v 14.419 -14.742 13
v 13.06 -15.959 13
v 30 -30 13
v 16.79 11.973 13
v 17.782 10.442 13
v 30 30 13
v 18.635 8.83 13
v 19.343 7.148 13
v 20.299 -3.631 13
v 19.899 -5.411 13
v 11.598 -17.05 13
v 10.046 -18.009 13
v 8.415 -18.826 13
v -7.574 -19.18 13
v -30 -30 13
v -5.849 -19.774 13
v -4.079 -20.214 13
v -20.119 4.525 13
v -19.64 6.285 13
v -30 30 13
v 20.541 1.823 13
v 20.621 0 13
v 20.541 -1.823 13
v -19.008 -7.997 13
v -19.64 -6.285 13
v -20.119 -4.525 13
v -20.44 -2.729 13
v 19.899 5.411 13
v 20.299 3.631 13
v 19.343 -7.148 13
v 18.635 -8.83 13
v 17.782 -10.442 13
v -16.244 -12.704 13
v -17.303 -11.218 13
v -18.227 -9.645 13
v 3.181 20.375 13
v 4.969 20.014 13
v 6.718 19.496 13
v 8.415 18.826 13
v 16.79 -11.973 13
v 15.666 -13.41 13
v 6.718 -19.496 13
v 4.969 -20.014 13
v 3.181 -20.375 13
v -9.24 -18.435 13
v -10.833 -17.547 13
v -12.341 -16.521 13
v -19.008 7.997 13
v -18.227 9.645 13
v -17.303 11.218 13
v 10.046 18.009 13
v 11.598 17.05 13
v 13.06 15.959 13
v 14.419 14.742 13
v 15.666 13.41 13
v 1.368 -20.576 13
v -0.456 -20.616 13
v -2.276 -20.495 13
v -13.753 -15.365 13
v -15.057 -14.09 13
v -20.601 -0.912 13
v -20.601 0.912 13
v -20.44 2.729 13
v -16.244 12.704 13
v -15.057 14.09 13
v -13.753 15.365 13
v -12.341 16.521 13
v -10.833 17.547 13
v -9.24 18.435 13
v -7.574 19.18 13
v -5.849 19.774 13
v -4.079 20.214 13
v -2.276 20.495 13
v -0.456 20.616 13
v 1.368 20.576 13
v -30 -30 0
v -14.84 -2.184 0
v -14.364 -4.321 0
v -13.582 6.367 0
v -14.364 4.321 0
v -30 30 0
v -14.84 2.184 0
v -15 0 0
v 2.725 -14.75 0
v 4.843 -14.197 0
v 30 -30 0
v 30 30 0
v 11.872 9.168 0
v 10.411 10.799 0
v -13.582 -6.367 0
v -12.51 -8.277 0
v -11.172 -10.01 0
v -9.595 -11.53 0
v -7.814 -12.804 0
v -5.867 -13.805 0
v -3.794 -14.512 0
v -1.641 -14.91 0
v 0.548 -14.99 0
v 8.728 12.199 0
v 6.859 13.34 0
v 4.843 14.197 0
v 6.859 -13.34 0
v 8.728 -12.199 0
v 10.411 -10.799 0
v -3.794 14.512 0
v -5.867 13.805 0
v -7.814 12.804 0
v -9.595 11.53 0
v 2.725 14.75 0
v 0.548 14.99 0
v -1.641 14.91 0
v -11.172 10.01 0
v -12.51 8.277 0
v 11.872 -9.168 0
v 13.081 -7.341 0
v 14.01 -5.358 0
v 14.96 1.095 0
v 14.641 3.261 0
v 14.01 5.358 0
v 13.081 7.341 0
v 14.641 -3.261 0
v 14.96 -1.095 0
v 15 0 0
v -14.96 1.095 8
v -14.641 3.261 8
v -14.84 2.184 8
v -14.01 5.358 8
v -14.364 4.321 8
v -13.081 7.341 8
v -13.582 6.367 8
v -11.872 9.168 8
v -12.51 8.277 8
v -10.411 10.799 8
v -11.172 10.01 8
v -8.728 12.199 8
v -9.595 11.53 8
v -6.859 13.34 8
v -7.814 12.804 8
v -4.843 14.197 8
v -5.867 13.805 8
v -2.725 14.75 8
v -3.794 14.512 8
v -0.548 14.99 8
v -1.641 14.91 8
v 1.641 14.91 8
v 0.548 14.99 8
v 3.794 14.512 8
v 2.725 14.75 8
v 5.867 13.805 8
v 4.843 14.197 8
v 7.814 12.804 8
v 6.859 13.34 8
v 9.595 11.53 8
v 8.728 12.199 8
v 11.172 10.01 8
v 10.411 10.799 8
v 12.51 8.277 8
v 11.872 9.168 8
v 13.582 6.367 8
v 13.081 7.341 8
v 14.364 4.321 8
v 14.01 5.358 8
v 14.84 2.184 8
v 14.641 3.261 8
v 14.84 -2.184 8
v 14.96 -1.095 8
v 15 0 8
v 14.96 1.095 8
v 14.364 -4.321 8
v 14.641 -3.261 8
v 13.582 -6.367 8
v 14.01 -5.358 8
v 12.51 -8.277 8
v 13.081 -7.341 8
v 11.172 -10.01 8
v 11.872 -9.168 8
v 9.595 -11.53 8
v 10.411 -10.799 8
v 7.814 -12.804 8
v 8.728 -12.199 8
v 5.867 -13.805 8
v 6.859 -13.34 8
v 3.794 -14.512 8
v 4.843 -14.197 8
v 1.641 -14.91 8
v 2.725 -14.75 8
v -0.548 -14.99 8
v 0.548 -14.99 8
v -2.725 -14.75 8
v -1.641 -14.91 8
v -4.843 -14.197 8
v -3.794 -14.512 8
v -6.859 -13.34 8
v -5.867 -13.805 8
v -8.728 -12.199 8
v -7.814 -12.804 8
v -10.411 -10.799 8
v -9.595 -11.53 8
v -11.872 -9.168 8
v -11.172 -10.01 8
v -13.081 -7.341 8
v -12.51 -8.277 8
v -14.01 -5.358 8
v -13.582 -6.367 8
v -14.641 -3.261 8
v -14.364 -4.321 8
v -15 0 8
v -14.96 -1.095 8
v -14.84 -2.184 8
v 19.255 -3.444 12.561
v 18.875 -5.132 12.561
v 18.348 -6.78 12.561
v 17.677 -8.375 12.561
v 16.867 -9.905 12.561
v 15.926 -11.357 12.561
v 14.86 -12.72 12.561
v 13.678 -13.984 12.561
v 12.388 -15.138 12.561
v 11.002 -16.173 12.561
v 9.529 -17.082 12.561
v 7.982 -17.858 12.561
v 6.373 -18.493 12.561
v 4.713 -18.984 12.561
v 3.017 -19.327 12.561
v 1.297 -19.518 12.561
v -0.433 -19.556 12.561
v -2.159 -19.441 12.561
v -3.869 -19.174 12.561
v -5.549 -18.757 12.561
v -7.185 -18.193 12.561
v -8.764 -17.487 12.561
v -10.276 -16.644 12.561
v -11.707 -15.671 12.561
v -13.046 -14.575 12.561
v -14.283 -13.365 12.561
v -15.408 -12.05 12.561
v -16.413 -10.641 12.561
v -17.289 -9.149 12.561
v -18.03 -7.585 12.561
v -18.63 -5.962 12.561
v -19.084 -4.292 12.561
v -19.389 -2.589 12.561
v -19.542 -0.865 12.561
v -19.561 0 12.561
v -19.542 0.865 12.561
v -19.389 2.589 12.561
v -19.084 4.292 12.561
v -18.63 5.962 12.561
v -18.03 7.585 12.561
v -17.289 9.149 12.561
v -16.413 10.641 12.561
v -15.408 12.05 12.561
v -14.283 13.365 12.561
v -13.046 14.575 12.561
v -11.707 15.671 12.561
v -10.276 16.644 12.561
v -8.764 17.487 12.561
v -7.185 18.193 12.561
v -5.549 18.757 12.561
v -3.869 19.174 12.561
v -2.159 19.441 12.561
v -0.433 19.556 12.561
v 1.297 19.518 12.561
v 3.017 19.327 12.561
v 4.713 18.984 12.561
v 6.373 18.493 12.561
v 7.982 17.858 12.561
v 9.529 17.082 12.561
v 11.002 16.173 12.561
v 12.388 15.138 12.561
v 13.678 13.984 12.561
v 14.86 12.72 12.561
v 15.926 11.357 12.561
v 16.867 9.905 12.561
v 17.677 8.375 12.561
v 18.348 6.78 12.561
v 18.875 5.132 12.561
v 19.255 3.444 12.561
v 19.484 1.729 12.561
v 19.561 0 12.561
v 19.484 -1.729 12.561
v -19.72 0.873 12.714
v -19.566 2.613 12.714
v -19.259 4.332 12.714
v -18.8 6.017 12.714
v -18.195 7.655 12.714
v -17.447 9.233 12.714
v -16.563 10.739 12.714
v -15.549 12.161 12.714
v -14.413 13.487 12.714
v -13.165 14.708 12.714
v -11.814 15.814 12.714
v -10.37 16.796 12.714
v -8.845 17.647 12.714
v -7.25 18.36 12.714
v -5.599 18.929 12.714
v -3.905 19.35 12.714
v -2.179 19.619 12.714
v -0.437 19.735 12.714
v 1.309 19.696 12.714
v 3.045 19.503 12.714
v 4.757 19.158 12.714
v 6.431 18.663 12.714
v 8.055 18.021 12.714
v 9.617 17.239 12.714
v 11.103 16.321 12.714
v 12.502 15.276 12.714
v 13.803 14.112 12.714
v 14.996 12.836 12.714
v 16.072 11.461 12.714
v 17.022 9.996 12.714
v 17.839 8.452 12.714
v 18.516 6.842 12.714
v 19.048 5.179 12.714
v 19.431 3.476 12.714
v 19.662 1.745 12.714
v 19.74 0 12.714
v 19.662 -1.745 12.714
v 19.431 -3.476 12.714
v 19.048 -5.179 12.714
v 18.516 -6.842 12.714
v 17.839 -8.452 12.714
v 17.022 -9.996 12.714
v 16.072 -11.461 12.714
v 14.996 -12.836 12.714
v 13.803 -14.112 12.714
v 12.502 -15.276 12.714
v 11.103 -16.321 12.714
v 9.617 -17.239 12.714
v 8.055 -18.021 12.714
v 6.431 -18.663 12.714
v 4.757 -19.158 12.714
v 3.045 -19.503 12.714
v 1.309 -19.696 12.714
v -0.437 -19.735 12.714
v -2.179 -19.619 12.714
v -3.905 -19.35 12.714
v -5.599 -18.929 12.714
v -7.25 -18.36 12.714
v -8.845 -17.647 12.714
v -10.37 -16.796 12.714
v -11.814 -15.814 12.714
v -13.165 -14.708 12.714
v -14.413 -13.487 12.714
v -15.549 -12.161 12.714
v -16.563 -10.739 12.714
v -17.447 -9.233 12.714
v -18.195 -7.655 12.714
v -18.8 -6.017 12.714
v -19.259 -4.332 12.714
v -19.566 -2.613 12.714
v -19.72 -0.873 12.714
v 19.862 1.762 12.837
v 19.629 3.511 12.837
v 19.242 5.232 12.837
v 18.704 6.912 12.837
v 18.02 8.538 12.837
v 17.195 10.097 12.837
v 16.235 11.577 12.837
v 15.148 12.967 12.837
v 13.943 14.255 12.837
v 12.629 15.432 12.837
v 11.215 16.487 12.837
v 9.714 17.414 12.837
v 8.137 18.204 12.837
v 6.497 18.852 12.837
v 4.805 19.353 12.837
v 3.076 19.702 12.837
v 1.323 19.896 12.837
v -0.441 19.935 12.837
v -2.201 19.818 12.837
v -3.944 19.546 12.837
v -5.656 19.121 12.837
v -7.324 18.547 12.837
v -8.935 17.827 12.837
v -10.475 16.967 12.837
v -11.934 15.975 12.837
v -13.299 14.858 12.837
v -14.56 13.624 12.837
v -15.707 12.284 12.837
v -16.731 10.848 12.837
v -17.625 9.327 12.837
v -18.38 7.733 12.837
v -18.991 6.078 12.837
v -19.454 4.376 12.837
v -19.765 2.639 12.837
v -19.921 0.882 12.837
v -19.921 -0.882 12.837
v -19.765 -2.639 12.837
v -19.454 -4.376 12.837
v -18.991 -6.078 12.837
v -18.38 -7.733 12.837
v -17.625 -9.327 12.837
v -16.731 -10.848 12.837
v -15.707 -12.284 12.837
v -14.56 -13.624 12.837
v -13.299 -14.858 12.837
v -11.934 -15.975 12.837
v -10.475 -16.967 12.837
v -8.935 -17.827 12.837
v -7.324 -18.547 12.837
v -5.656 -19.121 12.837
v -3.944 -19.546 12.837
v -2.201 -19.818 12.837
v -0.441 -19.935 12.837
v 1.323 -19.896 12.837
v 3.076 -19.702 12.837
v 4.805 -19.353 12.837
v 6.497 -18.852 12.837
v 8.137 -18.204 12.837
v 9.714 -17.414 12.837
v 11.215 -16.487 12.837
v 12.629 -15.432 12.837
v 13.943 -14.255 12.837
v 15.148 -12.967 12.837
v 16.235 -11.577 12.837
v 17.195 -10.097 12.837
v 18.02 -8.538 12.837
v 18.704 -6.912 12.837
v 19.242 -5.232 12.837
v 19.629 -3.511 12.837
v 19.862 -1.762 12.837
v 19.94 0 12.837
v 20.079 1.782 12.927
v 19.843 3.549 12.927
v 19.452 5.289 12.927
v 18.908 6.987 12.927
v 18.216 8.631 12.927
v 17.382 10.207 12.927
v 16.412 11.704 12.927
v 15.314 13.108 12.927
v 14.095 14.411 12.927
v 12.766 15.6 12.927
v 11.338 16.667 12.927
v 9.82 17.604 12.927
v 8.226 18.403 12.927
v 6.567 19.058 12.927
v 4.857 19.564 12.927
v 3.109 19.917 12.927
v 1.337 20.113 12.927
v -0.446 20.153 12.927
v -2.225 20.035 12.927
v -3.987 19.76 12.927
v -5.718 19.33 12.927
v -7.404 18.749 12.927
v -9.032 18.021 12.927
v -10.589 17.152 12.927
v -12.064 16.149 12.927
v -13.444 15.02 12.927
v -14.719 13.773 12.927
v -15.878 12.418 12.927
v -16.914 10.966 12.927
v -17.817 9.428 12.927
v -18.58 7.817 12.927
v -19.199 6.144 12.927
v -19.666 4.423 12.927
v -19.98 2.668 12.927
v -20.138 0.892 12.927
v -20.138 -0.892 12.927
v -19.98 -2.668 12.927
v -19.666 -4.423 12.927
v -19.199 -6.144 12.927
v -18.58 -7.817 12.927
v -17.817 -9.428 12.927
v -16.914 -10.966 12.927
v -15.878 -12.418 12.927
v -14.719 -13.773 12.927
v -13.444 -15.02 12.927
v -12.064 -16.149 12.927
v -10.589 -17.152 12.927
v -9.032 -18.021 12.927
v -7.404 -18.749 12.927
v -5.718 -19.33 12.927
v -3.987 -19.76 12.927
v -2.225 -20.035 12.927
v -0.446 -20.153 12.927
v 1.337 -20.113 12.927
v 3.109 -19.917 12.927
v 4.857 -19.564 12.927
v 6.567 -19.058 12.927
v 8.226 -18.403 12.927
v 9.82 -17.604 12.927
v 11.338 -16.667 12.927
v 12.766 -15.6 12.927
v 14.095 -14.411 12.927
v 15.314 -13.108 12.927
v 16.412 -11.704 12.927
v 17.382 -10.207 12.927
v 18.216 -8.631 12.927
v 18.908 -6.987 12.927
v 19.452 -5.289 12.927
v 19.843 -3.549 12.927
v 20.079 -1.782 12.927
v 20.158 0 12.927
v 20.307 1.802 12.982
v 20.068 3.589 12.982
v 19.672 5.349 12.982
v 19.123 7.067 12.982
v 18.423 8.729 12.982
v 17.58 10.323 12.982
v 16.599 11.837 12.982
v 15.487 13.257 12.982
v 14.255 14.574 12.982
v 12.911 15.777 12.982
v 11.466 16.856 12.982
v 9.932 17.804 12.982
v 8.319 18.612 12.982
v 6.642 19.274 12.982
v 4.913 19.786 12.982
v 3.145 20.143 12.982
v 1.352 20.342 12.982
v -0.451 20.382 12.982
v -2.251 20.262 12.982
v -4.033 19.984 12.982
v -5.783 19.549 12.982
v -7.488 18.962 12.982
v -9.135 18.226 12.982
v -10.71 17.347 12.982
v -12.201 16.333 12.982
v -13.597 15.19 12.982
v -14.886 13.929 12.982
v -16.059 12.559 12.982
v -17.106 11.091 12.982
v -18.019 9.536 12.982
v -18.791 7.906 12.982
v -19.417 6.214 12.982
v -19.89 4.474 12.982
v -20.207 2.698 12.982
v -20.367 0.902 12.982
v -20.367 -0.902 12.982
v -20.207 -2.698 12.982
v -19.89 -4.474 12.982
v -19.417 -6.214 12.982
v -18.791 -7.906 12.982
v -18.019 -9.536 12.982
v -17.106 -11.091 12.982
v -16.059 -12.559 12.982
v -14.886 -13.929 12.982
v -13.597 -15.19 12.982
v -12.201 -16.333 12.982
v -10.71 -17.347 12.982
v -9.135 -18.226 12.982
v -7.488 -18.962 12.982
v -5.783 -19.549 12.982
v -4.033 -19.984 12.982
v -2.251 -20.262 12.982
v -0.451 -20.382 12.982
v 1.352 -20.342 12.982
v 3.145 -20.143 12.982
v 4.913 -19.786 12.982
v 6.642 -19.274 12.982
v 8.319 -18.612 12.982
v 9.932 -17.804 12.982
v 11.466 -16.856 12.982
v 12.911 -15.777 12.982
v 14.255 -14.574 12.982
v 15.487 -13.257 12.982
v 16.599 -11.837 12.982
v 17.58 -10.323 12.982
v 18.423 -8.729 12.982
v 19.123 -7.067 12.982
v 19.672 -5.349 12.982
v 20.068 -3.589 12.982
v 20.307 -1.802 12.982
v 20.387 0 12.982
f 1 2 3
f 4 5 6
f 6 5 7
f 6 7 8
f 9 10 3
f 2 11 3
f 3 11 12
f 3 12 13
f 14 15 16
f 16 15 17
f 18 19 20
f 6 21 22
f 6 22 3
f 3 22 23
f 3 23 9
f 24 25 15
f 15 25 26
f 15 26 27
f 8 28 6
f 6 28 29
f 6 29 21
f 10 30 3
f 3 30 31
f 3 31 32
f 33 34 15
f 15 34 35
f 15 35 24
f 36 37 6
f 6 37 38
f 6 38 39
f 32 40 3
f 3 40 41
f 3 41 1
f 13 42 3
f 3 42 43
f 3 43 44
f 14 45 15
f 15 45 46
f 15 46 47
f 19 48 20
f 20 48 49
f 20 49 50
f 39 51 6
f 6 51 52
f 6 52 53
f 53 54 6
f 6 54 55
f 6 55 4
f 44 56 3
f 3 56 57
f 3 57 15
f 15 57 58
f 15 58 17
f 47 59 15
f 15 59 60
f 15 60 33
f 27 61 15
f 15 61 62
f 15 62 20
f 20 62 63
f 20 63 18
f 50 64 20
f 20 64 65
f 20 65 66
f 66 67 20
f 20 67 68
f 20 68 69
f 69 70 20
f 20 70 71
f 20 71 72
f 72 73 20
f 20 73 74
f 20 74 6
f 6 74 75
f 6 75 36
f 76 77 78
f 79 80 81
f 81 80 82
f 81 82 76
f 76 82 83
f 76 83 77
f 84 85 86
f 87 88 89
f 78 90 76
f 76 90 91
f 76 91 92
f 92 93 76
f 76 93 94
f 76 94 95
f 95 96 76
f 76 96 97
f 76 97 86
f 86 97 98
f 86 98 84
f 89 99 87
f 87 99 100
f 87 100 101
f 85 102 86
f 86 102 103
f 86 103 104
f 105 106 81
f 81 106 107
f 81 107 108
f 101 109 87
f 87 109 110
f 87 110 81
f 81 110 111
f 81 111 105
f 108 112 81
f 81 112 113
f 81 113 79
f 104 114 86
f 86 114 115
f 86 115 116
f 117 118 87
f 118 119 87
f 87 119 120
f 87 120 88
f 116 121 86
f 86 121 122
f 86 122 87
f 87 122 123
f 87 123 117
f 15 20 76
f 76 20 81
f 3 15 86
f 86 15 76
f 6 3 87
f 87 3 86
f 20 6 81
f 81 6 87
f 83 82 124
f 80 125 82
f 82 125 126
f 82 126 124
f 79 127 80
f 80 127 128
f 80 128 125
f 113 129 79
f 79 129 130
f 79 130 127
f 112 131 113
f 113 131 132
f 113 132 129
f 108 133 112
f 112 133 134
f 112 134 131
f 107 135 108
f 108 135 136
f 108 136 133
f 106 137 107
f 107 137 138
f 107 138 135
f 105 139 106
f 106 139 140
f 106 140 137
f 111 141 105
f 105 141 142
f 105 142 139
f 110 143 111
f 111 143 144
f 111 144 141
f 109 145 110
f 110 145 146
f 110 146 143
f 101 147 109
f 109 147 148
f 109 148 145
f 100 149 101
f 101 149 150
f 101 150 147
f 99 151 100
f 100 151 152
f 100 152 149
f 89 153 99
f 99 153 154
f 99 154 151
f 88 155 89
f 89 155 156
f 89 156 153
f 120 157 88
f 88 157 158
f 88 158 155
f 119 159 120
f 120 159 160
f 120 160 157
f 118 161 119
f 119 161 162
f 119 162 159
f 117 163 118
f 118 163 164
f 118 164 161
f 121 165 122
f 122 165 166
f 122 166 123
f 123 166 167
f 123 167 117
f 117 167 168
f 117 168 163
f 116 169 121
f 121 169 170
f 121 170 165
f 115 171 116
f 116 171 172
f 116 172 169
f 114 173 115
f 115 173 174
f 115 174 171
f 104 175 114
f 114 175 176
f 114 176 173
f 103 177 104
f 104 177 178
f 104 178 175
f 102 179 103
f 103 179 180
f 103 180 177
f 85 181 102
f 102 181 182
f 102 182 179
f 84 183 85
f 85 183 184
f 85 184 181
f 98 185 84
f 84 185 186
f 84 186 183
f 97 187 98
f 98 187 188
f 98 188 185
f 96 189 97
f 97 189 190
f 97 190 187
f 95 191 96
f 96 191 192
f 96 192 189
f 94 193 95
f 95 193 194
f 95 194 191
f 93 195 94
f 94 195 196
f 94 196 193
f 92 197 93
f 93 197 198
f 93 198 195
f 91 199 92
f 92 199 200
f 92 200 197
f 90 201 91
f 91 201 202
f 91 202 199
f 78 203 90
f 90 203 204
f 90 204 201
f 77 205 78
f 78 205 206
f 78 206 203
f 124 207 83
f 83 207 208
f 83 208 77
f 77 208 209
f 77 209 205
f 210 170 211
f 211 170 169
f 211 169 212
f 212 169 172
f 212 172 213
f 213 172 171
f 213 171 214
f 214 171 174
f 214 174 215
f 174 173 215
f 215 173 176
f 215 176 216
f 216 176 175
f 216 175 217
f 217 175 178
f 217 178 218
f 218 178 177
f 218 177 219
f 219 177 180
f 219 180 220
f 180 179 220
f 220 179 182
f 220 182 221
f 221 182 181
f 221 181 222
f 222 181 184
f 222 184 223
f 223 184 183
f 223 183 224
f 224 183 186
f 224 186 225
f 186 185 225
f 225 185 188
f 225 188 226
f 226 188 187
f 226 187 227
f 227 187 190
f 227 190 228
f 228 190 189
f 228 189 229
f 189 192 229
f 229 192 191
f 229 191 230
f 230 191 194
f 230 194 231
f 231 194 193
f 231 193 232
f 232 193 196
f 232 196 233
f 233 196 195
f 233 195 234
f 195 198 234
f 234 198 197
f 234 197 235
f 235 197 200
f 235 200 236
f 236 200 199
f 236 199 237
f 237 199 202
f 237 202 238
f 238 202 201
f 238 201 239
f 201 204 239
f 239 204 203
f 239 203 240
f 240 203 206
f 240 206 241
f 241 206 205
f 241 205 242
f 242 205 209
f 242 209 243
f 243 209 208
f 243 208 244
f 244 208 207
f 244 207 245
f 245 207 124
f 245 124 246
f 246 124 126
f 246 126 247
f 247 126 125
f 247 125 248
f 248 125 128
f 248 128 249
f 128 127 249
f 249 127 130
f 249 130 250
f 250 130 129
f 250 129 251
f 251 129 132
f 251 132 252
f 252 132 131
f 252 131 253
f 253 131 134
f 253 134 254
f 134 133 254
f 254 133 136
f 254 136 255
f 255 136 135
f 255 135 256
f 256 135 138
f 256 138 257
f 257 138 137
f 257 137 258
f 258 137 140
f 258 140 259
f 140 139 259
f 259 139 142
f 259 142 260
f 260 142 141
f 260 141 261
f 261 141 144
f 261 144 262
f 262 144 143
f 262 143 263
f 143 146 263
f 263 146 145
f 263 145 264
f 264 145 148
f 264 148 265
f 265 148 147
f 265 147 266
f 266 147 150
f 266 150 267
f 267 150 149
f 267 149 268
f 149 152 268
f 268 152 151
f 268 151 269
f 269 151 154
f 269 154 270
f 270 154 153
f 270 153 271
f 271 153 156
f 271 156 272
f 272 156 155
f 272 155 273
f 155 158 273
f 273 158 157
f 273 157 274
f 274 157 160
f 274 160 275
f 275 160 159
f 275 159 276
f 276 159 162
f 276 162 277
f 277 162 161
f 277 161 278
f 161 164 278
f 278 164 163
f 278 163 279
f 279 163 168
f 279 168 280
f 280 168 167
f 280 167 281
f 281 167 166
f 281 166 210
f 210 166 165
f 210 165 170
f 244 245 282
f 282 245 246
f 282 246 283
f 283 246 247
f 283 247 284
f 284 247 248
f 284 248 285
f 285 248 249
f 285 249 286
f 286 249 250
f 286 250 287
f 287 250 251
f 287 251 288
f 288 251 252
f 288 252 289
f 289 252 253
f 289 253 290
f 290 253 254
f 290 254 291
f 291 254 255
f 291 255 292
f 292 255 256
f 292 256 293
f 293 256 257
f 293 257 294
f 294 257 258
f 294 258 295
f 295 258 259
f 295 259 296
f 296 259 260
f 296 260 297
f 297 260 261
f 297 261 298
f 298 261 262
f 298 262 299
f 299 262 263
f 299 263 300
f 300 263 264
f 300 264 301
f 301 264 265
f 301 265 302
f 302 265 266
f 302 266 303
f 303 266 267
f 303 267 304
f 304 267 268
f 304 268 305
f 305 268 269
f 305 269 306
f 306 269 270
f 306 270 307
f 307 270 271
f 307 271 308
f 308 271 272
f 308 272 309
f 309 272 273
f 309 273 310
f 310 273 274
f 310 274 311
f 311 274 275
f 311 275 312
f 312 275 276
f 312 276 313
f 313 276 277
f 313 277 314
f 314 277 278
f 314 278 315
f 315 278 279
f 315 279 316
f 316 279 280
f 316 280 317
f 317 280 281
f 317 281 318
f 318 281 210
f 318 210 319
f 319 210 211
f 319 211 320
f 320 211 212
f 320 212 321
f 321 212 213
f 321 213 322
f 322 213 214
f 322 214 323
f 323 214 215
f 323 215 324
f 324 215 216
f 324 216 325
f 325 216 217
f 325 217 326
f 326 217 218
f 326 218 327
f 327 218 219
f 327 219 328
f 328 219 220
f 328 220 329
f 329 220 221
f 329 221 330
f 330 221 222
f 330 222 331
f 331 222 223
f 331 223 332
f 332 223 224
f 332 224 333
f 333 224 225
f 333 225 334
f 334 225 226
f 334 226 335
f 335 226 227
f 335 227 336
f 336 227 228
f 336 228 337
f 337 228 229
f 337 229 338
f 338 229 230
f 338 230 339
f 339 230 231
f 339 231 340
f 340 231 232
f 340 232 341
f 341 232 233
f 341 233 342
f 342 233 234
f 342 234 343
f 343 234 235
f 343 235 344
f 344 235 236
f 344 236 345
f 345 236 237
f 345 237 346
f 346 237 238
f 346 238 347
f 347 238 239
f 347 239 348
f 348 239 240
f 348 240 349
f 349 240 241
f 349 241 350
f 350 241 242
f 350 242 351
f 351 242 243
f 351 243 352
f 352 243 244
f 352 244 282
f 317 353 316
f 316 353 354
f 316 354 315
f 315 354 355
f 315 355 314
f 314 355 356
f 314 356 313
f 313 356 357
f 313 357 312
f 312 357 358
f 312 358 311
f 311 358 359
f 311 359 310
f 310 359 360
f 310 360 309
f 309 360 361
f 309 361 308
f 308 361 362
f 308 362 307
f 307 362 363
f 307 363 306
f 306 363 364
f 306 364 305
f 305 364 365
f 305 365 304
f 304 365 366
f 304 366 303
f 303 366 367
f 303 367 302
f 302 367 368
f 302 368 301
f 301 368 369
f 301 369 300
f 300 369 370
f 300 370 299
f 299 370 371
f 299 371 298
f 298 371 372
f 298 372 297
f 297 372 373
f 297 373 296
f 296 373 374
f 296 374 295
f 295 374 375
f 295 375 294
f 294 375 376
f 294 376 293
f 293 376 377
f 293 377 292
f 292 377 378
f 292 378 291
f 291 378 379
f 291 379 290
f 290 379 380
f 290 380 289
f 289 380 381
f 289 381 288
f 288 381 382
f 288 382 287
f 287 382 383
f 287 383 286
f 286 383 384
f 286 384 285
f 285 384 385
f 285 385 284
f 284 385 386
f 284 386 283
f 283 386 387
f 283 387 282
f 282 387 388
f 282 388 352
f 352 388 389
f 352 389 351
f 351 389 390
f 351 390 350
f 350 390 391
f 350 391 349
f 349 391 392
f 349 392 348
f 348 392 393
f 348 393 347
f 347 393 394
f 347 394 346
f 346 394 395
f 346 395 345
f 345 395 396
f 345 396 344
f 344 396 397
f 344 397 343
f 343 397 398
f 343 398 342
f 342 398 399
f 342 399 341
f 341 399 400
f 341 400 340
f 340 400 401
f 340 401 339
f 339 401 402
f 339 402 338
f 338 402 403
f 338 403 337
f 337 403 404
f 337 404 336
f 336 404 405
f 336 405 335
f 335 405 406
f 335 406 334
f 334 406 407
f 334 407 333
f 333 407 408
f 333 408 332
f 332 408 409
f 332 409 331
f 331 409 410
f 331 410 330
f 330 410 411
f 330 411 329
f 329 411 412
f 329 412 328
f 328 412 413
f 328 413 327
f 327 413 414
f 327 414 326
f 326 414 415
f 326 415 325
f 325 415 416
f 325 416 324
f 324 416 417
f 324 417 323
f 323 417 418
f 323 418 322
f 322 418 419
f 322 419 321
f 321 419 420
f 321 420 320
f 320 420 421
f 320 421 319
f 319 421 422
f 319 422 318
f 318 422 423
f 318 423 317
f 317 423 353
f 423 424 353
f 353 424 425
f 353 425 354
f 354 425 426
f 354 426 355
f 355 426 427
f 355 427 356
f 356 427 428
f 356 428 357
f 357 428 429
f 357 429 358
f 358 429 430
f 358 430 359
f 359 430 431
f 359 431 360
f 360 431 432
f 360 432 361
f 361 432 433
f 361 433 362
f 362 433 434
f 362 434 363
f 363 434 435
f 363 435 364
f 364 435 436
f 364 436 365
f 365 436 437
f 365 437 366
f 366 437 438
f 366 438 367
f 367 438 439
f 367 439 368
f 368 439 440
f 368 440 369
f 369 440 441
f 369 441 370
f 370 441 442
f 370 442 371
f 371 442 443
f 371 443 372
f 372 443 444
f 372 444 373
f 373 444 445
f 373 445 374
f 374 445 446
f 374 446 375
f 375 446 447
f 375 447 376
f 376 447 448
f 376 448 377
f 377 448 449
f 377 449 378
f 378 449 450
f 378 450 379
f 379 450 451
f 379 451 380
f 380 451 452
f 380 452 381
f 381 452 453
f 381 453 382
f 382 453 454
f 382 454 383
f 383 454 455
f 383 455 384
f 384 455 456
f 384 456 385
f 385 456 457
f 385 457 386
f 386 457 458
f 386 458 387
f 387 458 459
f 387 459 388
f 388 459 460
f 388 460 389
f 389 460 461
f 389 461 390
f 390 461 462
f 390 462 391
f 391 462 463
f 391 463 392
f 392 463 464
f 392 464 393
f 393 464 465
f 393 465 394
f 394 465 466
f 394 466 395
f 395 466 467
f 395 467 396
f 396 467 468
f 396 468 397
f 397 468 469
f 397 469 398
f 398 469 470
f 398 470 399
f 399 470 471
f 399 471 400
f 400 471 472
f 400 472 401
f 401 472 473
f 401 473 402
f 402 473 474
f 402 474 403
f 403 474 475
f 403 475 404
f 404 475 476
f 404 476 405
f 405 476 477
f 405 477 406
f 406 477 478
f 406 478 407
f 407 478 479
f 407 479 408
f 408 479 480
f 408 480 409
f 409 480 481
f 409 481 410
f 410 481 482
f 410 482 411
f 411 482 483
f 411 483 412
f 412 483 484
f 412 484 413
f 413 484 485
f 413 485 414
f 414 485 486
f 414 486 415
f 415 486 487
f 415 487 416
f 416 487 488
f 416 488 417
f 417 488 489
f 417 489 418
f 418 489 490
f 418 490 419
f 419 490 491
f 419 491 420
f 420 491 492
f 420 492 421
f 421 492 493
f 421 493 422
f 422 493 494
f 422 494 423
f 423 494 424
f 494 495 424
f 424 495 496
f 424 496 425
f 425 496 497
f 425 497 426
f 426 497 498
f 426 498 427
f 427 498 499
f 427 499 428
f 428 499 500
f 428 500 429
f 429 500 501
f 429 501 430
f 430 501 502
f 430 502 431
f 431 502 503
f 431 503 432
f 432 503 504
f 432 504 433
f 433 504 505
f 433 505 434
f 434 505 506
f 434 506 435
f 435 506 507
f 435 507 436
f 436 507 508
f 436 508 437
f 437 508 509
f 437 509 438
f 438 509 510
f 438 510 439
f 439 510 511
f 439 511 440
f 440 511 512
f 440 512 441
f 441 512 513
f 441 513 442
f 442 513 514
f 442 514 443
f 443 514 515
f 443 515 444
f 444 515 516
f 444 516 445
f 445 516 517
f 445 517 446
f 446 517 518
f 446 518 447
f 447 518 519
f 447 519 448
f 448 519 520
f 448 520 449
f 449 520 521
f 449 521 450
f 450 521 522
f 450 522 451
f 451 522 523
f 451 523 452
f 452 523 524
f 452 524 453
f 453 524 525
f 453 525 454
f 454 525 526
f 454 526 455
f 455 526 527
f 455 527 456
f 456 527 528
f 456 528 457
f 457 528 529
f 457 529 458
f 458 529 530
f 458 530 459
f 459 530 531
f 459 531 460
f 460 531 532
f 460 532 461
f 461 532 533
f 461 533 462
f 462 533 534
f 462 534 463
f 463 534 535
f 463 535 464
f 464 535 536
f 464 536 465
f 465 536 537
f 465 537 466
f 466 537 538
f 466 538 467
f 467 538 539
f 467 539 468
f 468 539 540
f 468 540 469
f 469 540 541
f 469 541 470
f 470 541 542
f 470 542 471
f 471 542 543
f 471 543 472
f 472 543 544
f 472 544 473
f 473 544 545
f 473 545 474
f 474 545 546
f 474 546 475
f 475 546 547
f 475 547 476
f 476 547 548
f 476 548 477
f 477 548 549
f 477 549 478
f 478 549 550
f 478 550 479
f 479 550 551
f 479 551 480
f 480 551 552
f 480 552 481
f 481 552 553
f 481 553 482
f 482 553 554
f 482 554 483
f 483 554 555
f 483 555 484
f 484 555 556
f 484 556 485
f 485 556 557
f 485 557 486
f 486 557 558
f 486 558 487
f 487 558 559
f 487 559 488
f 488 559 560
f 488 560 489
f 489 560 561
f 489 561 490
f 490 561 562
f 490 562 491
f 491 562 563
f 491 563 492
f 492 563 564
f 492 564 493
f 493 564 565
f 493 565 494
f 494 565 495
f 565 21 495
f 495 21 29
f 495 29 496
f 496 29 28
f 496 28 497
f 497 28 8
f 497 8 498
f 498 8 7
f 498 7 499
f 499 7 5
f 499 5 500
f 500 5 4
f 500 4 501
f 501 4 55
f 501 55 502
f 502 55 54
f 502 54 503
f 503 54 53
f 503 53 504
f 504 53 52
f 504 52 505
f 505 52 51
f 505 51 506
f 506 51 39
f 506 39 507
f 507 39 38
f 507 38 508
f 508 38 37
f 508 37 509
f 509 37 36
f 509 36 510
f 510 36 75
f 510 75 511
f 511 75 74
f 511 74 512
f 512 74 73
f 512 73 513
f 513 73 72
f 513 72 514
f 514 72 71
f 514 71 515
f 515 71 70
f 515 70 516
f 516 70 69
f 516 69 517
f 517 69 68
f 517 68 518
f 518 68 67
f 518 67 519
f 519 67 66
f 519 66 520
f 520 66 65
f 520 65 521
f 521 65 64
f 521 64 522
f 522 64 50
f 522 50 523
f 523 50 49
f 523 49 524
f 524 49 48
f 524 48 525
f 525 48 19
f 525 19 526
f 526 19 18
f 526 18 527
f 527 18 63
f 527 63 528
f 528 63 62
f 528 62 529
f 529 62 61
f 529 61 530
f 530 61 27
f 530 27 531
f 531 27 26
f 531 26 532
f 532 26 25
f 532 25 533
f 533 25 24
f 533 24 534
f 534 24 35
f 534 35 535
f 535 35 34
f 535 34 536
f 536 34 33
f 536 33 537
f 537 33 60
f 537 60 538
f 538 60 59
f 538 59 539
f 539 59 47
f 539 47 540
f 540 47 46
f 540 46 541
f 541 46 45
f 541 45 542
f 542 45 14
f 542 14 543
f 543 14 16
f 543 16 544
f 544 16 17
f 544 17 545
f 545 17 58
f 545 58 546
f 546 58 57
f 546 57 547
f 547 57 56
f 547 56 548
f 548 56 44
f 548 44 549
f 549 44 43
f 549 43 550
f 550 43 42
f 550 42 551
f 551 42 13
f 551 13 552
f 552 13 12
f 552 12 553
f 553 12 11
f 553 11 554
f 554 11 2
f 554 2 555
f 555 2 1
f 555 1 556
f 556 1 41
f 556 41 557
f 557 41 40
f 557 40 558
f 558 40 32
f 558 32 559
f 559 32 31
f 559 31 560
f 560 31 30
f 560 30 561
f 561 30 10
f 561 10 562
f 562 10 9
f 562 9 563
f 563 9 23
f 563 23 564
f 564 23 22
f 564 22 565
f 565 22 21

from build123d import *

# Parameters (mm, degrees)
SKETCH1_W           = 60
SKETCH1_H           = 60
SKETCH1_R           = 15
BOSS_EXTRUDE1_DEPTH = 13
CHAMFER1_SIZE       = 5
FILLET1_R           = 1.5


with BuildPart() as part:
    # Sketch1 → Boss-Extrude1 (new body)
    with BuildSketch(Plane.XY):
        Rectangle(SKETCH1_W, SKETCH1_H)
        with Locations(Location((0, 0, 0), (0, 0, 180))):
            Circle(SKETCH1_R, mode=Mode.SUBTRACT)
    extrude(amount=BOSS_EXTRUDE1_DEPTH)

    # Chamfer1
    chamfer1_edges = [part.edges().sort_by_distance(p)[0] for p in [
        (15, 0, 13),
    ]]
    chamfer(chamfer1_edges, length=CHAMFER1_SIZE)

    # Fillet1
    fillet1_edges = [part.edges().sort_by_distance(p)[0] for p in [
        (20, 0, 13),
    ]]
    fillet(fillet1_edges, radius=FILLET1_R)


solid = part.part
